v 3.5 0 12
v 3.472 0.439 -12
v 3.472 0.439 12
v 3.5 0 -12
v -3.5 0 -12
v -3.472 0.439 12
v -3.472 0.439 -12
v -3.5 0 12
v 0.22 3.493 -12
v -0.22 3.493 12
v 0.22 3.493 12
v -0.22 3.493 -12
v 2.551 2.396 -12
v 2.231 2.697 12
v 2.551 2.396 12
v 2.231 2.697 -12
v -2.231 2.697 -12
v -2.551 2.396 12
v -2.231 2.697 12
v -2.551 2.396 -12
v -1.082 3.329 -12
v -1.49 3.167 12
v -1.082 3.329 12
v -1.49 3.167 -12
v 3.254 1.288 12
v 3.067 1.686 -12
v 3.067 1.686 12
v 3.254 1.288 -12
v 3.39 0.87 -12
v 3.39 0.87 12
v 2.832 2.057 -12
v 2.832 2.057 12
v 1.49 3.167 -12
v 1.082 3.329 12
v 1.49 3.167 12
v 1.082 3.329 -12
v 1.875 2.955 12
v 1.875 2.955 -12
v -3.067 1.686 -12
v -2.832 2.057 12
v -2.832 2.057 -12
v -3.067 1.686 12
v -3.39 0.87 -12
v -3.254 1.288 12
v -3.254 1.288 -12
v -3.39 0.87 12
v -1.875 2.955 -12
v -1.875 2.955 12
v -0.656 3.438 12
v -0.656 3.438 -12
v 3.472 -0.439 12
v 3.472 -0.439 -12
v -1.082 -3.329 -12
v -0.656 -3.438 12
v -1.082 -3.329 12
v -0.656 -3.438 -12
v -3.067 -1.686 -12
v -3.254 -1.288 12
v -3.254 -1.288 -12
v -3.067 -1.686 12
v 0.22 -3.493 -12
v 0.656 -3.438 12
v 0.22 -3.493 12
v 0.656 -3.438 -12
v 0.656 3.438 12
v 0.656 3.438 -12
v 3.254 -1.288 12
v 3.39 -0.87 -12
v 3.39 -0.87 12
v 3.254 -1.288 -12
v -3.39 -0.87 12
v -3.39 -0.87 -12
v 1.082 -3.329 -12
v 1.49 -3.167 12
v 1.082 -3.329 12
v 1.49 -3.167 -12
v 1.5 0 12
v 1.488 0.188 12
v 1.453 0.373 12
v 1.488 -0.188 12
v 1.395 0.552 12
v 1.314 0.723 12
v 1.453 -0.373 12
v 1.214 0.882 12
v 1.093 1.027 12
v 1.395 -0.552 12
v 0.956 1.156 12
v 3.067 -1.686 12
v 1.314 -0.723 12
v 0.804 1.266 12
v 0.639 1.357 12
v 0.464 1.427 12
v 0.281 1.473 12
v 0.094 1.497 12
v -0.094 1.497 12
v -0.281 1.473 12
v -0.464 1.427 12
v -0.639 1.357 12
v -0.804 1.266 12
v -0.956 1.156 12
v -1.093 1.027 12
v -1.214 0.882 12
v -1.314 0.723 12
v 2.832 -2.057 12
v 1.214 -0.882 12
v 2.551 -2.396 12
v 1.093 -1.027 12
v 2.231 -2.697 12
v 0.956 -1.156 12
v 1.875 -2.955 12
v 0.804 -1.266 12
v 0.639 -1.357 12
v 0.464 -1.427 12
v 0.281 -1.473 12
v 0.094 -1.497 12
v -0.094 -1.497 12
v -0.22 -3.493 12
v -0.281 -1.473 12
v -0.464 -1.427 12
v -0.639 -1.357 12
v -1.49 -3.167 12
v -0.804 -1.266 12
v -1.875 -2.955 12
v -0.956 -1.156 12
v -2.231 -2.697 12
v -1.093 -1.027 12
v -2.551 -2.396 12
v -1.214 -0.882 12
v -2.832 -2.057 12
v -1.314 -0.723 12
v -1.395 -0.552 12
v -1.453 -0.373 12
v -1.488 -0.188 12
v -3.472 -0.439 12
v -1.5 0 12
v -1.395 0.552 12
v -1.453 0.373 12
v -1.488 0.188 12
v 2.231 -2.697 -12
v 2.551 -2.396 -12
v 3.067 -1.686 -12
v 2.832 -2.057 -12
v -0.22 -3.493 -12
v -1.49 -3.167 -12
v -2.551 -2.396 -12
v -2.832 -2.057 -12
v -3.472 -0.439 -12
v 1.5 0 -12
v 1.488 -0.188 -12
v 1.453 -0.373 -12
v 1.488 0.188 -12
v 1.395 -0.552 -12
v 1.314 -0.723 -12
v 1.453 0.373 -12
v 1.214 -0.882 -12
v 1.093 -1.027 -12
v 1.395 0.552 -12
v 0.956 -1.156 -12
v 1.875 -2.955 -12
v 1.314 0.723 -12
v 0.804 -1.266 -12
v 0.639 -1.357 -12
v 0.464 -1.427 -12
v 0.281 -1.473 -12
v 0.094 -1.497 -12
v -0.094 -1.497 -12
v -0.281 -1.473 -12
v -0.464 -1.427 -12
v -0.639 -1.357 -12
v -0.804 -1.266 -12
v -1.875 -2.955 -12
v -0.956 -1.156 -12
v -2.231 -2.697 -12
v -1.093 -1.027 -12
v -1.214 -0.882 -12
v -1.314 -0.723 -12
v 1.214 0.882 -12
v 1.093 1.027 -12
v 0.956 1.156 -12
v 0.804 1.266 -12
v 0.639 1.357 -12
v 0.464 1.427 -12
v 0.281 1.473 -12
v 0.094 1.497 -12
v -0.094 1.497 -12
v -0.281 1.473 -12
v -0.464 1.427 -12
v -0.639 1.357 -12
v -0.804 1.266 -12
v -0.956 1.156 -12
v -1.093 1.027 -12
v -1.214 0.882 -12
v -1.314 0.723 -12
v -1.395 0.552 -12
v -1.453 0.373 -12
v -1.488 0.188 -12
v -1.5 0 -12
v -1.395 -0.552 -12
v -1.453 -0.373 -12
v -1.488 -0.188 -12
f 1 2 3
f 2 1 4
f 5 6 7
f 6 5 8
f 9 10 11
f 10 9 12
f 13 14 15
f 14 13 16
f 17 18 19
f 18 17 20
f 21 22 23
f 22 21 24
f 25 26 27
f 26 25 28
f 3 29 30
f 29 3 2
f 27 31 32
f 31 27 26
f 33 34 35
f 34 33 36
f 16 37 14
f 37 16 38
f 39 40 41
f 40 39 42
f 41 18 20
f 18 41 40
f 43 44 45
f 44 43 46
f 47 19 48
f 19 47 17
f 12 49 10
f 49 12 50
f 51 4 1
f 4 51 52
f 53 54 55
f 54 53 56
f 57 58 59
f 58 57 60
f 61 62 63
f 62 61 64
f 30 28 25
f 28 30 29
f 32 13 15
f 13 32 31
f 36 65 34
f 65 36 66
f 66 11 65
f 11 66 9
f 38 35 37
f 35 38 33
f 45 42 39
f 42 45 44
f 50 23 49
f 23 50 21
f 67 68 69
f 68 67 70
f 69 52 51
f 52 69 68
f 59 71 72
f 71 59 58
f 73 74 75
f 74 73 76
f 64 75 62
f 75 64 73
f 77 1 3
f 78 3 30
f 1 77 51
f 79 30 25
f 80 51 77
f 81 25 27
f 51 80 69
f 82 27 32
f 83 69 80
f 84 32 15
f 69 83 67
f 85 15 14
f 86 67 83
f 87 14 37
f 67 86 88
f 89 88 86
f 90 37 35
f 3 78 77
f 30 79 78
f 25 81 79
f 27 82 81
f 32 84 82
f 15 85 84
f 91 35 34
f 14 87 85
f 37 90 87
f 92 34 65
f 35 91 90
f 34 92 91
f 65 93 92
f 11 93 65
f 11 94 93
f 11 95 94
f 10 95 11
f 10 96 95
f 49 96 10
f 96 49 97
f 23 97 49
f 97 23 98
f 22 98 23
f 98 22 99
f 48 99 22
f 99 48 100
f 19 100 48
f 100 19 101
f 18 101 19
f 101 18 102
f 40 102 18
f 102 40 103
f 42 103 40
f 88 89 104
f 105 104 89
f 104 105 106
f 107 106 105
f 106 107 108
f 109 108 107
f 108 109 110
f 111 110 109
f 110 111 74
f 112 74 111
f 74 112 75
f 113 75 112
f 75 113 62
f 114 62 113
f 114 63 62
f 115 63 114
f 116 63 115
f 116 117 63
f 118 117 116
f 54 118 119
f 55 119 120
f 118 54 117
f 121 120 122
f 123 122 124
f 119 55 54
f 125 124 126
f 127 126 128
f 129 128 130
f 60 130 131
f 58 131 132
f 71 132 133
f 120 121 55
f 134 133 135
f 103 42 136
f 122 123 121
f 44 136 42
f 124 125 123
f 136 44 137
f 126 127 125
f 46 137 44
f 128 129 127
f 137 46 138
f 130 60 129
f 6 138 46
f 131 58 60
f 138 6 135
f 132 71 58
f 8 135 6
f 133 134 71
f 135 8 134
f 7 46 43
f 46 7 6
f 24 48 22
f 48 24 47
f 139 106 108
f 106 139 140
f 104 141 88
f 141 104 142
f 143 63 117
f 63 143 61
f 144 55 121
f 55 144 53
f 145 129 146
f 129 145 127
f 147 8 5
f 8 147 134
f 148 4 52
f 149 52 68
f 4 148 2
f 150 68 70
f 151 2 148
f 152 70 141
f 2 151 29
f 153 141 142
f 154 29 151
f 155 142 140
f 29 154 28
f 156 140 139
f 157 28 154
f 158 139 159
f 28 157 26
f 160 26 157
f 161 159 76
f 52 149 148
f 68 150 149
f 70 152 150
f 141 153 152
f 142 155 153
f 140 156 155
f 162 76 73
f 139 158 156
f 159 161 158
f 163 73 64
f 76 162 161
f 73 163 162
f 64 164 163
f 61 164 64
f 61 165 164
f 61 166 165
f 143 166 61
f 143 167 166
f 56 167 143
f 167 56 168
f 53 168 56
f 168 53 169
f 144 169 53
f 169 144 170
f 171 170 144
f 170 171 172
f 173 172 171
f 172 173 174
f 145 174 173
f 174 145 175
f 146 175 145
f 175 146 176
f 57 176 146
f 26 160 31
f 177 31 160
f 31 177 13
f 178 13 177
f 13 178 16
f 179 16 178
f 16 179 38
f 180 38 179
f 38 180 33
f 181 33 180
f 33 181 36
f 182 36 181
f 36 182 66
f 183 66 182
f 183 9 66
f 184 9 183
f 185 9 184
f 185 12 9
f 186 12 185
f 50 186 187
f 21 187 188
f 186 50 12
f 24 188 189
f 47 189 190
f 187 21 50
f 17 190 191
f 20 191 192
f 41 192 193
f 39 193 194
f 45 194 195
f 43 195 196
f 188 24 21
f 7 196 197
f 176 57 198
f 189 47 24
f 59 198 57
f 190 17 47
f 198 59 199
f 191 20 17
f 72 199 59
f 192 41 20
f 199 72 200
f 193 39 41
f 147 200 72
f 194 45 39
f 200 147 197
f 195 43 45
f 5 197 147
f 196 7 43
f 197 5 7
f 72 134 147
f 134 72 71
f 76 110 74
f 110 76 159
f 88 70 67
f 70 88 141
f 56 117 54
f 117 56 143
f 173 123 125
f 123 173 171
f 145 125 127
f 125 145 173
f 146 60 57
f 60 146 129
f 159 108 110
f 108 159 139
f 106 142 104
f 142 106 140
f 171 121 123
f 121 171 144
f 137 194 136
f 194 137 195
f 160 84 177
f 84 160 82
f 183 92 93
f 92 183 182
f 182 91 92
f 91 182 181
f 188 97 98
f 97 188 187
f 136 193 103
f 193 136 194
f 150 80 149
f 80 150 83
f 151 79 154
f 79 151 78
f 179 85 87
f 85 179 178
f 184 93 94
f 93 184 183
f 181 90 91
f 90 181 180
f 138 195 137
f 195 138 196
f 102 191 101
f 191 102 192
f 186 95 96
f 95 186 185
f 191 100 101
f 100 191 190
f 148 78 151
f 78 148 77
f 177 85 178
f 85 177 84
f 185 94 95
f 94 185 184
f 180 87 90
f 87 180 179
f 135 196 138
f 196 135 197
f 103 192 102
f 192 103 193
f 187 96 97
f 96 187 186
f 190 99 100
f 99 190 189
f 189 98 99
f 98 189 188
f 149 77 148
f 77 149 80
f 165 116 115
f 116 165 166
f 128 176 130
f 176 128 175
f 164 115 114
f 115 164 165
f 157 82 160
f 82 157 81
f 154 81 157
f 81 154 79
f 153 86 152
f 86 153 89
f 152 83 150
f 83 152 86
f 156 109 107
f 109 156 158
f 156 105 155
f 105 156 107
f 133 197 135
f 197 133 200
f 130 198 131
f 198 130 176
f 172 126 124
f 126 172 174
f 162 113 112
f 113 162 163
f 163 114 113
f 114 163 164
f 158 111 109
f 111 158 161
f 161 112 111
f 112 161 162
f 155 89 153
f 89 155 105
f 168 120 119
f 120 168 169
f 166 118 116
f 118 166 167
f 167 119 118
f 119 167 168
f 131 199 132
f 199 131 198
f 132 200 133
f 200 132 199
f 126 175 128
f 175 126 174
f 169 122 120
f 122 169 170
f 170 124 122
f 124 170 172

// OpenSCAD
$fn = 50;


difference() {
	union() {
		translate(v = [0, 0, -12.0000000000]) {
			cylinder(h = 24, r = 3.5000000000);
		}
	}
	union() {
		translate(v = [0, 0, -100.0000000000]) {
			cylinder(h = 200, r = 1.5000000000);
		}
	}
}
